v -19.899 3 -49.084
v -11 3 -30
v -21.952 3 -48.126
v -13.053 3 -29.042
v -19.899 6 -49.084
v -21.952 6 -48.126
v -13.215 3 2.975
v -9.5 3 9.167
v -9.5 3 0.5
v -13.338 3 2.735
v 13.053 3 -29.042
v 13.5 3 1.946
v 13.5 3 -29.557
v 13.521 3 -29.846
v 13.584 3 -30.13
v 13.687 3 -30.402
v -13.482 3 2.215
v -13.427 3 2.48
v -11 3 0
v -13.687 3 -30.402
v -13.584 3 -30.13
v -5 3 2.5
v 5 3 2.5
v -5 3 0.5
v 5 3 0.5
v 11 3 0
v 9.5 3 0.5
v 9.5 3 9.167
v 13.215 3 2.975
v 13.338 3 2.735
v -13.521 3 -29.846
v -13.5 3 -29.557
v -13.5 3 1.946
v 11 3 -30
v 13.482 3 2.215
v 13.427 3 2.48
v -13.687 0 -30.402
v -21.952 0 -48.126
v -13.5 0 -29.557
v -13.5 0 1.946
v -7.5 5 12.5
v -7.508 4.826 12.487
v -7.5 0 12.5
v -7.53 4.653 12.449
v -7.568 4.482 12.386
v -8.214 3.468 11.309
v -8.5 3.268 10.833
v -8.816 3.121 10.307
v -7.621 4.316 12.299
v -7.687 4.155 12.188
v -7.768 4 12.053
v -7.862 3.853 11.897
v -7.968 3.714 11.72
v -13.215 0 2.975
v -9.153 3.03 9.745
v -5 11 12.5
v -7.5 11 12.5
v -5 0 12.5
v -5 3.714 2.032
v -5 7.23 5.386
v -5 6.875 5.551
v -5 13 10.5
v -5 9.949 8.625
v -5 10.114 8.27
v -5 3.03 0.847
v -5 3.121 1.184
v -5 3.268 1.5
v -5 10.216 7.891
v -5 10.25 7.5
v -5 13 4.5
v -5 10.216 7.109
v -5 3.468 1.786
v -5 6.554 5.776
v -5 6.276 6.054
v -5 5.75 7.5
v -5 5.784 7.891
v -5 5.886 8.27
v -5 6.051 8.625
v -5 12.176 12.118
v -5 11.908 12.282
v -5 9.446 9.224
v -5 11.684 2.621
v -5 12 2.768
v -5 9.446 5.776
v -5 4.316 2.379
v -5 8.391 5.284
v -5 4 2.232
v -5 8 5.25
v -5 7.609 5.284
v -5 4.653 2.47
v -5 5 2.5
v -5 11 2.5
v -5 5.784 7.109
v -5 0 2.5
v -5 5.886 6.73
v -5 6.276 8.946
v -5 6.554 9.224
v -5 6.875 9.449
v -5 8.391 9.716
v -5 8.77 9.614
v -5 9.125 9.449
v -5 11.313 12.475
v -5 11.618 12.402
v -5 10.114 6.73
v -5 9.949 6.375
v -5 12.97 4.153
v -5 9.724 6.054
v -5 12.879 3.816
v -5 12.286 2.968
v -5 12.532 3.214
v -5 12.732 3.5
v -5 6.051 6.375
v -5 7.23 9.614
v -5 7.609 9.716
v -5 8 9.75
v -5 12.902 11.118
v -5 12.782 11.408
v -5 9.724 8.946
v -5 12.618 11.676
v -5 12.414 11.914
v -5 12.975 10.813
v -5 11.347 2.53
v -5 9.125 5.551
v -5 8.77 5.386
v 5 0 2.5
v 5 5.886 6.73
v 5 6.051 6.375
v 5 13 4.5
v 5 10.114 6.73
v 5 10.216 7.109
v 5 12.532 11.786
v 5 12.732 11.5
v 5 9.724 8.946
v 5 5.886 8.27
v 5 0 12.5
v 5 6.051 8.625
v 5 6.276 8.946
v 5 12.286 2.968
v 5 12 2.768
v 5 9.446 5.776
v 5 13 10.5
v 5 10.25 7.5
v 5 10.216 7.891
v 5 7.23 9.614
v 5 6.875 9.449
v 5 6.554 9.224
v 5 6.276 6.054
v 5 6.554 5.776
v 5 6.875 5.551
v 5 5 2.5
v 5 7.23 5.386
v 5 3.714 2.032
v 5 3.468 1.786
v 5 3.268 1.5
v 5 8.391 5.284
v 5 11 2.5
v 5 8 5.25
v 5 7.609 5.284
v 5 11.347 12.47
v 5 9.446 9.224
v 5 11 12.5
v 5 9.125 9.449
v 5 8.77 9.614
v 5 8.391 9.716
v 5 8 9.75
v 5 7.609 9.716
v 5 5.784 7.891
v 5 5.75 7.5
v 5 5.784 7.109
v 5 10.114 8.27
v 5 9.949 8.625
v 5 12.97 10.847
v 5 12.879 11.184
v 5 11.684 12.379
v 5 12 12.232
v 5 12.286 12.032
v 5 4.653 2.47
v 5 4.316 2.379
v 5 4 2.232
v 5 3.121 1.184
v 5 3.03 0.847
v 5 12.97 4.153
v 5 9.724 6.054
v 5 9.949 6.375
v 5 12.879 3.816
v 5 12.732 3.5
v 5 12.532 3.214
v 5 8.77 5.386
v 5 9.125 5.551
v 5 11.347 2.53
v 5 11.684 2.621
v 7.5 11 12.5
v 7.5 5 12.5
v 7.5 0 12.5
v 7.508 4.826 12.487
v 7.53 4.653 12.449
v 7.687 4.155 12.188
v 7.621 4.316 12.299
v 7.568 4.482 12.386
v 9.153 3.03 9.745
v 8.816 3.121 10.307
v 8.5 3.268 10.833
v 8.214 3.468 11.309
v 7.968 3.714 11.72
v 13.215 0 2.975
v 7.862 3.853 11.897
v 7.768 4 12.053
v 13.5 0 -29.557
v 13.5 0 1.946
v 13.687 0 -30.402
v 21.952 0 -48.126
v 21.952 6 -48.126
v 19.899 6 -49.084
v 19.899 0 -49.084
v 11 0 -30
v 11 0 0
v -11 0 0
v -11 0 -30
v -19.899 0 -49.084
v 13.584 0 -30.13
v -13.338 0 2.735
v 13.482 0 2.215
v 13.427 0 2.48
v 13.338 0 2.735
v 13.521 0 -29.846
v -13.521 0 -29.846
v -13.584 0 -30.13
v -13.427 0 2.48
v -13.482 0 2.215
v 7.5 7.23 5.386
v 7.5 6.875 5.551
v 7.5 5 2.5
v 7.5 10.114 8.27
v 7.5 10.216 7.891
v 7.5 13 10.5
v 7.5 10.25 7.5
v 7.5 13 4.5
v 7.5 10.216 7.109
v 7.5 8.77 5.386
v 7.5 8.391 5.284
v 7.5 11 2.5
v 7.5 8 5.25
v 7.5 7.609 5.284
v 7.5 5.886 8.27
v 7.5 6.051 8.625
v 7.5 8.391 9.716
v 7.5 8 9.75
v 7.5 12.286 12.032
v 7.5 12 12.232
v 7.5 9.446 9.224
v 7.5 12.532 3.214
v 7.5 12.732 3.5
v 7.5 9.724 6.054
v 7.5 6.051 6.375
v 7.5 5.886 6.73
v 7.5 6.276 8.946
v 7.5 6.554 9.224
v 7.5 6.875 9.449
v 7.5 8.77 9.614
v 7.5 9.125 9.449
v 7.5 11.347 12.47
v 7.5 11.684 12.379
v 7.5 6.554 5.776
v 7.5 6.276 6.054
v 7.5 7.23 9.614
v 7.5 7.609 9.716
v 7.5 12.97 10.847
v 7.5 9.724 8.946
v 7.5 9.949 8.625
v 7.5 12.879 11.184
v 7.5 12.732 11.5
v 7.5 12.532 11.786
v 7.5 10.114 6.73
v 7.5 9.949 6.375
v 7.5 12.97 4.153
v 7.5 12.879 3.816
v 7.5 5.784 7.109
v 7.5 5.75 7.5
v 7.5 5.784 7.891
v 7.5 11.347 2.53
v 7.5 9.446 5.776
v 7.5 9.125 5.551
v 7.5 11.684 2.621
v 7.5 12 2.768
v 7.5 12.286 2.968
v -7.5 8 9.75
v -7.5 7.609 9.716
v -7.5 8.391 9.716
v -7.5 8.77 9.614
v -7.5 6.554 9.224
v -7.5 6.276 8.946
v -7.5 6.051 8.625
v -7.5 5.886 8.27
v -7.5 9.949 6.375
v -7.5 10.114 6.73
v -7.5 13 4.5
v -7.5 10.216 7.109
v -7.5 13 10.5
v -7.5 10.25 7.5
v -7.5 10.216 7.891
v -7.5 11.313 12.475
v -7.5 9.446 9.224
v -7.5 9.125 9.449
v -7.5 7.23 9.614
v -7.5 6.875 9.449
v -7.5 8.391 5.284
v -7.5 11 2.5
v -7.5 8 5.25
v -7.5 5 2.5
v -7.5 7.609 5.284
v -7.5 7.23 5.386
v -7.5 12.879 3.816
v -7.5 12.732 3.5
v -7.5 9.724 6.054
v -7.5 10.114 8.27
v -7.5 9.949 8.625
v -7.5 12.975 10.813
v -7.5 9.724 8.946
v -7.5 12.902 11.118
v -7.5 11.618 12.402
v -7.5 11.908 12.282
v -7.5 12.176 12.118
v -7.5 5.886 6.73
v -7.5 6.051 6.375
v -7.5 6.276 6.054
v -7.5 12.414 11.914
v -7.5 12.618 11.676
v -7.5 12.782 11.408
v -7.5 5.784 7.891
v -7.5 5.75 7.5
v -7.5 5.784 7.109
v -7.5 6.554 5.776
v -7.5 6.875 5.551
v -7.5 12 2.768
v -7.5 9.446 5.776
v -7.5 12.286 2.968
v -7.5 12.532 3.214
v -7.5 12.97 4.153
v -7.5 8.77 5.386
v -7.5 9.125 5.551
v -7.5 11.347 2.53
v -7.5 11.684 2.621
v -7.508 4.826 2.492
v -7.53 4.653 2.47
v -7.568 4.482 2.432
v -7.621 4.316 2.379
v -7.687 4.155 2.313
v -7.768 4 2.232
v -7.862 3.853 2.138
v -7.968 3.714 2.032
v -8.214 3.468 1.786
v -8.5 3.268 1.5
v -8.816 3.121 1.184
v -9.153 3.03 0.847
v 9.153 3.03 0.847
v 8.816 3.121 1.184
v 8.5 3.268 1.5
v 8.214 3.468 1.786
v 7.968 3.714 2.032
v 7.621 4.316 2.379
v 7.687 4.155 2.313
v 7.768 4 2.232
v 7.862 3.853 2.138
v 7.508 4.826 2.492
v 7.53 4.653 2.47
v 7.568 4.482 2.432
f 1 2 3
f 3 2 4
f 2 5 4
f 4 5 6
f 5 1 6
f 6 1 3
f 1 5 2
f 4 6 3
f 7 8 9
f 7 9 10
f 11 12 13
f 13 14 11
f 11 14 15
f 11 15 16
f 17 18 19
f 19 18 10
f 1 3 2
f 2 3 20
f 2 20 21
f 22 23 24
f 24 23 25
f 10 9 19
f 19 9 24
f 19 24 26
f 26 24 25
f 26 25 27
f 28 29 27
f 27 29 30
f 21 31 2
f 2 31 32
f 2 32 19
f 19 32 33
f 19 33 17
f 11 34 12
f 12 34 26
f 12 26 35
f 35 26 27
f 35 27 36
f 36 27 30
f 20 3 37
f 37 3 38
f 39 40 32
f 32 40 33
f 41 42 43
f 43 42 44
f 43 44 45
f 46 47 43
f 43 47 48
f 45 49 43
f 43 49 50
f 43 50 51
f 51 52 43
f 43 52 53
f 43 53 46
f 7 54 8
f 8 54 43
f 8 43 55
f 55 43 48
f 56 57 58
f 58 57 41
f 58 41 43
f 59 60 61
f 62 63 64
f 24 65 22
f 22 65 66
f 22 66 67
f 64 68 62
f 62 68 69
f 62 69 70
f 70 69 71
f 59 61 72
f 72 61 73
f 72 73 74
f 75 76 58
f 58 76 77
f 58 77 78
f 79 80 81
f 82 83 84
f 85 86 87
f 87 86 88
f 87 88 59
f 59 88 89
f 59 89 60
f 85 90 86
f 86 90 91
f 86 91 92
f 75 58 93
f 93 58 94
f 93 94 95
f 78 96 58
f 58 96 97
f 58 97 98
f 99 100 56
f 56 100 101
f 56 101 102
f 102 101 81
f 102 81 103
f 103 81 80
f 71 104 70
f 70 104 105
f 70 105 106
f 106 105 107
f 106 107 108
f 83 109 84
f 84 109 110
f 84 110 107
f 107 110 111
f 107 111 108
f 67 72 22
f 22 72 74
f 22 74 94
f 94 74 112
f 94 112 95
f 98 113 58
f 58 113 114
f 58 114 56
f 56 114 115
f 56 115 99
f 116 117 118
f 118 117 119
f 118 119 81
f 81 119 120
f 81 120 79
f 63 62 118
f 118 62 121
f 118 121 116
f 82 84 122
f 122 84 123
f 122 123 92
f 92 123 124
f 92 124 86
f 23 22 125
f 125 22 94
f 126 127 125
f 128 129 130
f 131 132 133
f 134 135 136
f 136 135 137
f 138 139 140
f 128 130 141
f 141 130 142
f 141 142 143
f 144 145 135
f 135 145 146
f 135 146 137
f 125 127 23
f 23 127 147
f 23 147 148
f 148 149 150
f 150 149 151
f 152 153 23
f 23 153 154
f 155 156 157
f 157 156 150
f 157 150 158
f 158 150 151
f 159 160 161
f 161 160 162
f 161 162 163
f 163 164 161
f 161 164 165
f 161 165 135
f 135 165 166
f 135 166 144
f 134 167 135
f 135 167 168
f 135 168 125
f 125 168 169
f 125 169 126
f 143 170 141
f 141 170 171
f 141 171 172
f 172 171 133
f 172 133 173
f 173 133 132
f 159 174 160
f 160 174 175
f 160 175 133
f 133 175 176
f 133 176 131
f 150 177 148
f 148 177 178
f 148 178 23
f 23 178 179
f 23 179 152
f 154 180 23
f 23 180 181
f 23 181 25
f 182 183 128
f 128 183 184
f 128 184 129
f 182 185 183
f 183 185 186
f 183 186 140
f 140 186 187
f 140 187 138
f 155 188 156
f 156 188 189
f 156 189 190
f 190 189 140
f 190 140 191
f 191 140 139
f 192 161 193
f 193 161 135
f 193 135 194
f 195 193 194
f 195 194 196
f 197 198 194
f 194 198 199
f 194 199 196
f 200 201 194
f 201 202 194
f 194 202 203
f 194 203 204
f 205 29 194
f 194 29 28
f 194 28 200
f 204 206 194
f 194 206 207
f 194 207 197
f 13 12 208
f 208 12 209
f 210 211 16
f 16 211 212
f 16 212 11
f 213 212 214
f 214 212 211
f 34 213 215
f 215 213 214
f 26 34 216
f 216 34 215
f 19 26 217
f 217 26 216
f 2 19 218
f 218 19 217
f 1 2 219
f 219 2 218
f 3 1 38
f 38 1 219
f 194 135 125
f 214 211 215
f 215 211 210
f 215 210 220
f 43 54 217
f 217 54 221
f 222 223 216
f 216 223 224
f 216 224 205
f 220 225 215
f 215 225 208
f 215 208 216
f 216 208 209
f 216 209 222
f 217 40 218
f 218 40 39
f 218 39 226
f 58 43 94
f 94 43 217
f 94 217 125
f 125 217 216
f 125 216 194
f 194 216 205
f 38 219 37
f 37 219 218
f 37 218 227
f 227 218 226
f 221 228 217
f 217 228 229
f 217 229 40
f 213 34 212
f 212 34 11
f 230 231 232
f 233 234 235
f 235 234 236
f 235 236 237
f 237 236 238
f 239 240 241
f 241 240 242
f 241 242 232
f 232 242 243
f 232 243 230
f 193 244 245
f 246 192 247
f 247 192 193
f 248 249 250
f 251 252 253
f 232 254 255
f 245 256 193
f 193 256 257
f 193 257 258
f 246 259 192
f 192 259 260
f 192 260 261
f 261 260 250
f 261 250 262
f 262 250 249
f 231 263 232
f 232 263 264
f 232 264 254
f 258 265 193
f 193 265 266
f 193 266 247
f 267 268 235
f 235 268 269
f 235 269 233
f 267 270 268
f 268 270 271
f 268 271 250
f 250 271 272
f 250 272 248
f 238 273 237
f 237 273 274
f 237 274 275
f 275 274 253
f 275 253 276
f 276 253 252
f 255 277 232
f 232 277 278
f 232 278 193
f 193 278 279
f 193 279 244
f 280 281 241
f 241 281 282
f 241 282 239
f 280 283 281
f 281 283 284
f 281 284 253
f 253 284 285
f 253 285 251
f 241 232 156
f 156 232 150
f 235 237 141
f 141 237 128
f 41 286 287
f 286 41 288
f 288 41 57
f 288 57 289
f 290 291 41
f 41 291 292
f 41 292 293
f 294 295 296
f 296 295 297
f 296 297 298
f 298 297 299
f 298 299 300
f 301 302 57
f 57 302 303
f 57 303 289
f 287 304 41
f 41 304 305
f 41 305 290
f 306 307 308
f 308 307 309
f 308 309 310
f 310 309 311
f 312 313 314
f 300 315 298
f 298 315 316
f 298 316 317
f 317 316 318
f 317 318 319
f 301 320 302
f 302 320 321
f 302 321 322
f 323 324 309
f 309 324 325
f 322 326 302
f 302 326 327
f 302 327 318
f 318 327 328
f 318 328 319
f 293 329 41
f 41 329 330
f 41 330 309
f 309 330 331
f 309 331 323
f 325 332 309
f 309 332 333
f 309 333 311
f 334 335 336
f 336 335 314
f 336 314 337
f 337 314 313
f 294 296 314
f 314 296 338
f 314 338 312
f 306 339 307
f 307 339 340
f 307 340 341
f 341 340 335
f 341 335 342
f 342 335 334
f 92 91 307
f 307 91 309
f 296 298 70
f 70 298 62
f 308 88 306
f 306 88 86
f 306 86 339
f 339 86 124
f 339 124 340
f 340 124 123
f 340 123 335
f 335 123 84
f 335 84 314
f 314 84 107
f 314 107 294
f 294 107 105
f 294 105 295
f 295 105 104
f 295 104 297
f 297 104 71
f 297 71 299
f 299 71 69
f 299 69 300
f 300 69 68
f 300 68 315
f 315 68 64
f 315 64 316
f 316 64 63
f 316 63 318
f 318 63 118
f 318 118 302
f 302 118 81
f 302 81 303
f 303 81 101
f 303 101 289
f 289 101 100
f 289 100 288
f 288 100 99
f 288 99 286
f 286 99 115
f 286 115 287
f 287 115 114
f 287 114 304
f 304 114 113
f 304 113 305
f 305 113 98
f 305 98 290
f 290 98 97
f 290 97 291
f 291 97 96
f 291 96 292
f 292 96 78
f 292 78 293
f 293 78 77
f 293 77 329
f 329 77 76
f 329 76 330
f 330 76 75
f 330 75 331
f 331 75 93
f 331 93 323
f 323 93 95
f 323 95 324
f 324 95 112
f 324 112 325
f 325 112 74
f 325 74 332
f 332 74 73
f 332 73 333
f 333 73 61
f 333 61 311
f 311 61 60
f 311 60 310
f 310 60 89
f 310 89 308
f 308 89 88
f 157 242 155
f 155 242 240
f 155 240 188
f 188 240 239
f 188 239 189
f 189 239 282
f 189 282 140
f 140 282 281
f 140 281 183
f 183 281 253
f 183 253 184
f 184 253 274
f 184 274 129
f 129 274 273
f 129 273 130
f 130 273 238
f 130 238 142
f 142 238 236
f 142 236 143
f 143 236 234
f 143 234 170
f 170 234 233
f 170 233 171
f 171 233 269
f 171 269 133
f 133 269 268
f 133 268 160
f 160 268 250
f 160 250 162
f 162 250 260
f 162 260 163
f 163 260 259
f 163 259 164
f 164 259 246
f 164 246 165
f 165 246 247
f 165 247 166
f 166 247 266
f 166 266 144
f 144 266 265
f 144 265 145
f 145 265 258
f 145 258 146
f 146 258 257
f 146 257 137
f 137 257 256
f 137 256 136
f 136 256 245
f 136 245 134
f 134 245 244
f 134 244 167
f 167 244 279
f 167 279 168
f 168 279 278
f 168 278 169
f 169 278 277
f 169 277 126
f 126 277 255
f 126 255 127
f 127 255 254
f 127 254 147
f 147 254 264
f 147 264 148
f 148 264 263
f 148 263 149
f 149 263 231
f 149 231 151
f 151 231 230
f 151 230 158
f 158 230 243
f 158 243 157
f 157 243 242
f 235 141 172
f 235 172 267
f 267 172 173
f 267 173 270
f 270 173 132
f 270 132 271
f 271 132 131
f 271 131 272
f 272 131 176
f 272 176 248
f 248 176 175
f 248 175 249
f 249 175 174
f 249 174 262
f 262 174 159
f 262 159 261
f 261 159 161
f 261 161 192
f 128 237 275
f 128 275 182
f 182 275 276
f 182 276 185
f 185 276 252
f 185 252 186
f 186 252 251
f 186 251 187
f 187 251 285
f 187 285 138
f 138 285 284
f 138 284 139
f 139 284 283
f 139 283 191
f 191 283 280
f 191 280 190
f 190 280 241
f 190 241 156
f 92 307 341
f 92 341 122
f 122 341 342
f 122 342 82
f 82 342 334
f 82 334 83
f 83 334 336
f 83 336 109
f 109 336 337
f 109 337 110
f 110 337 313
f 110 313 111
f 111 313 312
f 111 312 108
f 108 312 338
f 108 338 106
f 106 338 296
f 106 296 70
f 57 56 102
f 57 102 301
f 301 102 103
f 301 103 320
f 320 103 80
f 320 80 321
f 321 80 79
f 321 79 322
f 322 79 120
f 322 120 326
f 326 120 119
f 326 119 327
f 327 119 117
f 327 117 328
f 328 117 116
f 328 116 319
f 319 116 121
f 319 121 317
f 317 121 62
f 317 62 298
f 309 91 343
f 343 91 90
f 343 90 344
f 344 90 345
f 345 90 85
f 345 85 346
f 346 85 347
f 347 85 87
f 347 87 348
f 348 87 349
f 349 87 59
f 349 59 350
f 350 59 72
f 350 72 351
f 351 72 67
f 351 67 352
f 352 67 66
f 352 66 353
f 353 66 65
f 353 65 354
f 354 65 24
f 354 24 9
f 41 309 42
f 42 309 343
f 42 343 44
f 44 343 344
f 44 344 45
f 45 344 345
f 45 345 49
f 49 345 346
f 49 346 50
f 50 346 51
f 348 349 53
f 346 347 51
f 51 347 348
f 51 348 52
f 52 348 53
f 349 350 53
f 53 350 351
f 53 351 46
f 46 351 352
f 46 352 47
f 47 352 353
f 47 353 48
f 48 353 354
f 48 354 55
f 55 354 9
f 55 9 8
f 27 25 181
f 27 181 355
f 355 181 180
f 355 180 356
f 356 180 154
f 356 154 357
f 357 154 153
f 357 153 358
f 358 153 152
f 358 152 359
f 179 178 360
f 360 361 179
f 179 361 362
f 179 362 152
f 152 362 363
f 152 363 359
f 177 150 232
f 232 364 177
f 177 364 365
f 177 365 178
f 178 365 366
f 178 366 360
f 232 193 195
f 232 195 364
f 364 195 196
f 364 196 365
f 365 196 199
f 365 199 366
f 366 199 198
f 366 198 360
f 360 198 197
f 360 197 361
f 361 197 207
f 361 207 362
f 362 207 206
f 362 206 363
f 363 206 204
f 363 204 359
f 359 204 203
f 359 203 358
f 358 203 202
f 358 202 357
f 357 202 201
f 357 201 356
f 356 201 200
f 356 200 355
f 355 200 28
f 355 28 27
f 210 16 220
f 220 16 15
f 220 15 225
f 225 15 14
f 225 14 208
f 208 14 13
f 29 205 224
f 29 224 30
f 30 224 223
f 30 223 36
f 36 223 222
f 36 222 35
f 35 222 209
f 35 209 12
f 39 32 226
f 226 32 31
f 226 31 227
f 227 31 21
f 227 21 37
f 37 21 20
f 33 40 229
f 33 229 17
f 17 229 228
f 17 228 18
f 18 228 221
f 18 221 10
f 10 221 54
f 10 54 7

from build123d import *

# Parameters (mm, degrees)
BOSS_EXTRUDE1_DEPTH = 3
BOSS_EXTRUDE2_DEPTH = 2.265769468
SKETCH3_W           = 2.500000000000001
SKETCH3_H           = 10.000000000000002
BOSS_EXTRUDE3_DEPTH = 10
SKETCH4_R           = 2.25
CUT_EXTRUDE1_DEPTH  = 59.699680853056826
FILLET1_R           = 2


with BuildPart() as part:
    # Sketch1 → Boss-Extrude1 (new body)
    with BuildSketch(Plane(origin=(0, 0, 0), x_dir=(1, 0, 0), z_dir=(0, 1, 0))):
        Polygon((11, 0), (11.000000000000007, 30), (19.898880722705854, 49.083711294631705), (21.952365234814025, 48.126155740732976), (13.500000000000009, 30), (13.500000000000005, -2.5), (7.499999997441382, -12.5), (4.999999997441382, -12.5), (4.999999997441381, -2.5), (-4.999999997441381, -2.5), (-4.999999997441382, -12.5), (-7.499999997441382, -12.5), (-13.500000000000005, -2.5), (-13.500000000000009, 30), (-21.952365234814025, 48.126155740732976), (-19.898880722705854, 49.083711294631705), (-11.000000000000007, 30), (-11, 0), align=None)
    extrude(amount=BOSS_EXTRUDE1_DEPTH)


with BuildPart() as body_2:
    # Sketch2 → Boss-Extrude2 (new body)
    with BuildSketch(Plane(origin=(2.4553347935087504, 0, -1.1449414175475578), x_dir=(-0.42261826174070105, 0, -0.9063077870366492), z_dir=(0.9063077870366493, 0, -0.4226182617407011))):
        Polygon((31.8380344902472, 3), (52.89458014459895, 6), (52.89458014459895, 3), align=None)
    boss_extrude2 = extrude(amount=-BOSS_EXTRUDE2_DEPTH)


with BuildPart() as part_1:
    add(part.part)

    # Mirror4: Boss-Extrude2 across plane
    add(boss_extrude2.mirror(Plane(origin=(0, 0, 0), x_dir=(0, 0, 1), z_dir=(1, 0, 0))))

    # Sketch3 → Boss-Extrude3 (add)
    with BuildSketch(Plane(origin=(0, 3, 0), x_dir=(1, 0, 0), z_dir=(0, 1, 0))):
        with Locations((6.249999997441382, -7.500000000000001)):
            Rectangle(SKETCH3_W, SKETCH3_H)
        with Locations((-6.249999997441382, -7.500000000000001)):
            Rectangle(SKETCH3_W, SKETCH3_H)
    extrude(amount=BOSS_EXTRUDE3_DEPTH)

    # Sketch4 → Cut-Extrude1 (cut, through all)
    with BuildSketch(Plane(origin=(7.499999997441382, 0, 0), x_dir=(0, 0, -1), z_dir=(1, 0, 0))):
        with Locations((-7.500000000000001, 8)):
            Circle(SKETCH4_R)
    extrude(amount=-CUT_EXTRUDE1_DEPTH, mode=Mode.SUBTRACT)

    # Fillet1
    fillet1_edges = [part_1.edges().sort_by_distance(p)[0] for p in [
        (13.500000000000009, 1.5, -30),
        (13.500000000000005, 1.5, 2.5),
        (-13.500000000000005, 1.5, 2.5),
        (-13.500000000000009, 1.5, -30),
        (7.499999997441382, 3, 7.5),
        (6.249999997441382, 3, 2.5),
        (6.249999997441382, 13, 2.5),
        (6.249999997441382, 13, 12.5),
        (-7.499999997441382, 3, 7.5),
        (-6.249999997441382, 3, 2.5),
        (-6.249999997441382, 13, 12.5),
        (-6.249999997441382, 13, 2.5),
    ]]
    fillet(fillet1_edges, radius=FILLET1_R)


solid = Compound([body_2.part, part_1.part])
